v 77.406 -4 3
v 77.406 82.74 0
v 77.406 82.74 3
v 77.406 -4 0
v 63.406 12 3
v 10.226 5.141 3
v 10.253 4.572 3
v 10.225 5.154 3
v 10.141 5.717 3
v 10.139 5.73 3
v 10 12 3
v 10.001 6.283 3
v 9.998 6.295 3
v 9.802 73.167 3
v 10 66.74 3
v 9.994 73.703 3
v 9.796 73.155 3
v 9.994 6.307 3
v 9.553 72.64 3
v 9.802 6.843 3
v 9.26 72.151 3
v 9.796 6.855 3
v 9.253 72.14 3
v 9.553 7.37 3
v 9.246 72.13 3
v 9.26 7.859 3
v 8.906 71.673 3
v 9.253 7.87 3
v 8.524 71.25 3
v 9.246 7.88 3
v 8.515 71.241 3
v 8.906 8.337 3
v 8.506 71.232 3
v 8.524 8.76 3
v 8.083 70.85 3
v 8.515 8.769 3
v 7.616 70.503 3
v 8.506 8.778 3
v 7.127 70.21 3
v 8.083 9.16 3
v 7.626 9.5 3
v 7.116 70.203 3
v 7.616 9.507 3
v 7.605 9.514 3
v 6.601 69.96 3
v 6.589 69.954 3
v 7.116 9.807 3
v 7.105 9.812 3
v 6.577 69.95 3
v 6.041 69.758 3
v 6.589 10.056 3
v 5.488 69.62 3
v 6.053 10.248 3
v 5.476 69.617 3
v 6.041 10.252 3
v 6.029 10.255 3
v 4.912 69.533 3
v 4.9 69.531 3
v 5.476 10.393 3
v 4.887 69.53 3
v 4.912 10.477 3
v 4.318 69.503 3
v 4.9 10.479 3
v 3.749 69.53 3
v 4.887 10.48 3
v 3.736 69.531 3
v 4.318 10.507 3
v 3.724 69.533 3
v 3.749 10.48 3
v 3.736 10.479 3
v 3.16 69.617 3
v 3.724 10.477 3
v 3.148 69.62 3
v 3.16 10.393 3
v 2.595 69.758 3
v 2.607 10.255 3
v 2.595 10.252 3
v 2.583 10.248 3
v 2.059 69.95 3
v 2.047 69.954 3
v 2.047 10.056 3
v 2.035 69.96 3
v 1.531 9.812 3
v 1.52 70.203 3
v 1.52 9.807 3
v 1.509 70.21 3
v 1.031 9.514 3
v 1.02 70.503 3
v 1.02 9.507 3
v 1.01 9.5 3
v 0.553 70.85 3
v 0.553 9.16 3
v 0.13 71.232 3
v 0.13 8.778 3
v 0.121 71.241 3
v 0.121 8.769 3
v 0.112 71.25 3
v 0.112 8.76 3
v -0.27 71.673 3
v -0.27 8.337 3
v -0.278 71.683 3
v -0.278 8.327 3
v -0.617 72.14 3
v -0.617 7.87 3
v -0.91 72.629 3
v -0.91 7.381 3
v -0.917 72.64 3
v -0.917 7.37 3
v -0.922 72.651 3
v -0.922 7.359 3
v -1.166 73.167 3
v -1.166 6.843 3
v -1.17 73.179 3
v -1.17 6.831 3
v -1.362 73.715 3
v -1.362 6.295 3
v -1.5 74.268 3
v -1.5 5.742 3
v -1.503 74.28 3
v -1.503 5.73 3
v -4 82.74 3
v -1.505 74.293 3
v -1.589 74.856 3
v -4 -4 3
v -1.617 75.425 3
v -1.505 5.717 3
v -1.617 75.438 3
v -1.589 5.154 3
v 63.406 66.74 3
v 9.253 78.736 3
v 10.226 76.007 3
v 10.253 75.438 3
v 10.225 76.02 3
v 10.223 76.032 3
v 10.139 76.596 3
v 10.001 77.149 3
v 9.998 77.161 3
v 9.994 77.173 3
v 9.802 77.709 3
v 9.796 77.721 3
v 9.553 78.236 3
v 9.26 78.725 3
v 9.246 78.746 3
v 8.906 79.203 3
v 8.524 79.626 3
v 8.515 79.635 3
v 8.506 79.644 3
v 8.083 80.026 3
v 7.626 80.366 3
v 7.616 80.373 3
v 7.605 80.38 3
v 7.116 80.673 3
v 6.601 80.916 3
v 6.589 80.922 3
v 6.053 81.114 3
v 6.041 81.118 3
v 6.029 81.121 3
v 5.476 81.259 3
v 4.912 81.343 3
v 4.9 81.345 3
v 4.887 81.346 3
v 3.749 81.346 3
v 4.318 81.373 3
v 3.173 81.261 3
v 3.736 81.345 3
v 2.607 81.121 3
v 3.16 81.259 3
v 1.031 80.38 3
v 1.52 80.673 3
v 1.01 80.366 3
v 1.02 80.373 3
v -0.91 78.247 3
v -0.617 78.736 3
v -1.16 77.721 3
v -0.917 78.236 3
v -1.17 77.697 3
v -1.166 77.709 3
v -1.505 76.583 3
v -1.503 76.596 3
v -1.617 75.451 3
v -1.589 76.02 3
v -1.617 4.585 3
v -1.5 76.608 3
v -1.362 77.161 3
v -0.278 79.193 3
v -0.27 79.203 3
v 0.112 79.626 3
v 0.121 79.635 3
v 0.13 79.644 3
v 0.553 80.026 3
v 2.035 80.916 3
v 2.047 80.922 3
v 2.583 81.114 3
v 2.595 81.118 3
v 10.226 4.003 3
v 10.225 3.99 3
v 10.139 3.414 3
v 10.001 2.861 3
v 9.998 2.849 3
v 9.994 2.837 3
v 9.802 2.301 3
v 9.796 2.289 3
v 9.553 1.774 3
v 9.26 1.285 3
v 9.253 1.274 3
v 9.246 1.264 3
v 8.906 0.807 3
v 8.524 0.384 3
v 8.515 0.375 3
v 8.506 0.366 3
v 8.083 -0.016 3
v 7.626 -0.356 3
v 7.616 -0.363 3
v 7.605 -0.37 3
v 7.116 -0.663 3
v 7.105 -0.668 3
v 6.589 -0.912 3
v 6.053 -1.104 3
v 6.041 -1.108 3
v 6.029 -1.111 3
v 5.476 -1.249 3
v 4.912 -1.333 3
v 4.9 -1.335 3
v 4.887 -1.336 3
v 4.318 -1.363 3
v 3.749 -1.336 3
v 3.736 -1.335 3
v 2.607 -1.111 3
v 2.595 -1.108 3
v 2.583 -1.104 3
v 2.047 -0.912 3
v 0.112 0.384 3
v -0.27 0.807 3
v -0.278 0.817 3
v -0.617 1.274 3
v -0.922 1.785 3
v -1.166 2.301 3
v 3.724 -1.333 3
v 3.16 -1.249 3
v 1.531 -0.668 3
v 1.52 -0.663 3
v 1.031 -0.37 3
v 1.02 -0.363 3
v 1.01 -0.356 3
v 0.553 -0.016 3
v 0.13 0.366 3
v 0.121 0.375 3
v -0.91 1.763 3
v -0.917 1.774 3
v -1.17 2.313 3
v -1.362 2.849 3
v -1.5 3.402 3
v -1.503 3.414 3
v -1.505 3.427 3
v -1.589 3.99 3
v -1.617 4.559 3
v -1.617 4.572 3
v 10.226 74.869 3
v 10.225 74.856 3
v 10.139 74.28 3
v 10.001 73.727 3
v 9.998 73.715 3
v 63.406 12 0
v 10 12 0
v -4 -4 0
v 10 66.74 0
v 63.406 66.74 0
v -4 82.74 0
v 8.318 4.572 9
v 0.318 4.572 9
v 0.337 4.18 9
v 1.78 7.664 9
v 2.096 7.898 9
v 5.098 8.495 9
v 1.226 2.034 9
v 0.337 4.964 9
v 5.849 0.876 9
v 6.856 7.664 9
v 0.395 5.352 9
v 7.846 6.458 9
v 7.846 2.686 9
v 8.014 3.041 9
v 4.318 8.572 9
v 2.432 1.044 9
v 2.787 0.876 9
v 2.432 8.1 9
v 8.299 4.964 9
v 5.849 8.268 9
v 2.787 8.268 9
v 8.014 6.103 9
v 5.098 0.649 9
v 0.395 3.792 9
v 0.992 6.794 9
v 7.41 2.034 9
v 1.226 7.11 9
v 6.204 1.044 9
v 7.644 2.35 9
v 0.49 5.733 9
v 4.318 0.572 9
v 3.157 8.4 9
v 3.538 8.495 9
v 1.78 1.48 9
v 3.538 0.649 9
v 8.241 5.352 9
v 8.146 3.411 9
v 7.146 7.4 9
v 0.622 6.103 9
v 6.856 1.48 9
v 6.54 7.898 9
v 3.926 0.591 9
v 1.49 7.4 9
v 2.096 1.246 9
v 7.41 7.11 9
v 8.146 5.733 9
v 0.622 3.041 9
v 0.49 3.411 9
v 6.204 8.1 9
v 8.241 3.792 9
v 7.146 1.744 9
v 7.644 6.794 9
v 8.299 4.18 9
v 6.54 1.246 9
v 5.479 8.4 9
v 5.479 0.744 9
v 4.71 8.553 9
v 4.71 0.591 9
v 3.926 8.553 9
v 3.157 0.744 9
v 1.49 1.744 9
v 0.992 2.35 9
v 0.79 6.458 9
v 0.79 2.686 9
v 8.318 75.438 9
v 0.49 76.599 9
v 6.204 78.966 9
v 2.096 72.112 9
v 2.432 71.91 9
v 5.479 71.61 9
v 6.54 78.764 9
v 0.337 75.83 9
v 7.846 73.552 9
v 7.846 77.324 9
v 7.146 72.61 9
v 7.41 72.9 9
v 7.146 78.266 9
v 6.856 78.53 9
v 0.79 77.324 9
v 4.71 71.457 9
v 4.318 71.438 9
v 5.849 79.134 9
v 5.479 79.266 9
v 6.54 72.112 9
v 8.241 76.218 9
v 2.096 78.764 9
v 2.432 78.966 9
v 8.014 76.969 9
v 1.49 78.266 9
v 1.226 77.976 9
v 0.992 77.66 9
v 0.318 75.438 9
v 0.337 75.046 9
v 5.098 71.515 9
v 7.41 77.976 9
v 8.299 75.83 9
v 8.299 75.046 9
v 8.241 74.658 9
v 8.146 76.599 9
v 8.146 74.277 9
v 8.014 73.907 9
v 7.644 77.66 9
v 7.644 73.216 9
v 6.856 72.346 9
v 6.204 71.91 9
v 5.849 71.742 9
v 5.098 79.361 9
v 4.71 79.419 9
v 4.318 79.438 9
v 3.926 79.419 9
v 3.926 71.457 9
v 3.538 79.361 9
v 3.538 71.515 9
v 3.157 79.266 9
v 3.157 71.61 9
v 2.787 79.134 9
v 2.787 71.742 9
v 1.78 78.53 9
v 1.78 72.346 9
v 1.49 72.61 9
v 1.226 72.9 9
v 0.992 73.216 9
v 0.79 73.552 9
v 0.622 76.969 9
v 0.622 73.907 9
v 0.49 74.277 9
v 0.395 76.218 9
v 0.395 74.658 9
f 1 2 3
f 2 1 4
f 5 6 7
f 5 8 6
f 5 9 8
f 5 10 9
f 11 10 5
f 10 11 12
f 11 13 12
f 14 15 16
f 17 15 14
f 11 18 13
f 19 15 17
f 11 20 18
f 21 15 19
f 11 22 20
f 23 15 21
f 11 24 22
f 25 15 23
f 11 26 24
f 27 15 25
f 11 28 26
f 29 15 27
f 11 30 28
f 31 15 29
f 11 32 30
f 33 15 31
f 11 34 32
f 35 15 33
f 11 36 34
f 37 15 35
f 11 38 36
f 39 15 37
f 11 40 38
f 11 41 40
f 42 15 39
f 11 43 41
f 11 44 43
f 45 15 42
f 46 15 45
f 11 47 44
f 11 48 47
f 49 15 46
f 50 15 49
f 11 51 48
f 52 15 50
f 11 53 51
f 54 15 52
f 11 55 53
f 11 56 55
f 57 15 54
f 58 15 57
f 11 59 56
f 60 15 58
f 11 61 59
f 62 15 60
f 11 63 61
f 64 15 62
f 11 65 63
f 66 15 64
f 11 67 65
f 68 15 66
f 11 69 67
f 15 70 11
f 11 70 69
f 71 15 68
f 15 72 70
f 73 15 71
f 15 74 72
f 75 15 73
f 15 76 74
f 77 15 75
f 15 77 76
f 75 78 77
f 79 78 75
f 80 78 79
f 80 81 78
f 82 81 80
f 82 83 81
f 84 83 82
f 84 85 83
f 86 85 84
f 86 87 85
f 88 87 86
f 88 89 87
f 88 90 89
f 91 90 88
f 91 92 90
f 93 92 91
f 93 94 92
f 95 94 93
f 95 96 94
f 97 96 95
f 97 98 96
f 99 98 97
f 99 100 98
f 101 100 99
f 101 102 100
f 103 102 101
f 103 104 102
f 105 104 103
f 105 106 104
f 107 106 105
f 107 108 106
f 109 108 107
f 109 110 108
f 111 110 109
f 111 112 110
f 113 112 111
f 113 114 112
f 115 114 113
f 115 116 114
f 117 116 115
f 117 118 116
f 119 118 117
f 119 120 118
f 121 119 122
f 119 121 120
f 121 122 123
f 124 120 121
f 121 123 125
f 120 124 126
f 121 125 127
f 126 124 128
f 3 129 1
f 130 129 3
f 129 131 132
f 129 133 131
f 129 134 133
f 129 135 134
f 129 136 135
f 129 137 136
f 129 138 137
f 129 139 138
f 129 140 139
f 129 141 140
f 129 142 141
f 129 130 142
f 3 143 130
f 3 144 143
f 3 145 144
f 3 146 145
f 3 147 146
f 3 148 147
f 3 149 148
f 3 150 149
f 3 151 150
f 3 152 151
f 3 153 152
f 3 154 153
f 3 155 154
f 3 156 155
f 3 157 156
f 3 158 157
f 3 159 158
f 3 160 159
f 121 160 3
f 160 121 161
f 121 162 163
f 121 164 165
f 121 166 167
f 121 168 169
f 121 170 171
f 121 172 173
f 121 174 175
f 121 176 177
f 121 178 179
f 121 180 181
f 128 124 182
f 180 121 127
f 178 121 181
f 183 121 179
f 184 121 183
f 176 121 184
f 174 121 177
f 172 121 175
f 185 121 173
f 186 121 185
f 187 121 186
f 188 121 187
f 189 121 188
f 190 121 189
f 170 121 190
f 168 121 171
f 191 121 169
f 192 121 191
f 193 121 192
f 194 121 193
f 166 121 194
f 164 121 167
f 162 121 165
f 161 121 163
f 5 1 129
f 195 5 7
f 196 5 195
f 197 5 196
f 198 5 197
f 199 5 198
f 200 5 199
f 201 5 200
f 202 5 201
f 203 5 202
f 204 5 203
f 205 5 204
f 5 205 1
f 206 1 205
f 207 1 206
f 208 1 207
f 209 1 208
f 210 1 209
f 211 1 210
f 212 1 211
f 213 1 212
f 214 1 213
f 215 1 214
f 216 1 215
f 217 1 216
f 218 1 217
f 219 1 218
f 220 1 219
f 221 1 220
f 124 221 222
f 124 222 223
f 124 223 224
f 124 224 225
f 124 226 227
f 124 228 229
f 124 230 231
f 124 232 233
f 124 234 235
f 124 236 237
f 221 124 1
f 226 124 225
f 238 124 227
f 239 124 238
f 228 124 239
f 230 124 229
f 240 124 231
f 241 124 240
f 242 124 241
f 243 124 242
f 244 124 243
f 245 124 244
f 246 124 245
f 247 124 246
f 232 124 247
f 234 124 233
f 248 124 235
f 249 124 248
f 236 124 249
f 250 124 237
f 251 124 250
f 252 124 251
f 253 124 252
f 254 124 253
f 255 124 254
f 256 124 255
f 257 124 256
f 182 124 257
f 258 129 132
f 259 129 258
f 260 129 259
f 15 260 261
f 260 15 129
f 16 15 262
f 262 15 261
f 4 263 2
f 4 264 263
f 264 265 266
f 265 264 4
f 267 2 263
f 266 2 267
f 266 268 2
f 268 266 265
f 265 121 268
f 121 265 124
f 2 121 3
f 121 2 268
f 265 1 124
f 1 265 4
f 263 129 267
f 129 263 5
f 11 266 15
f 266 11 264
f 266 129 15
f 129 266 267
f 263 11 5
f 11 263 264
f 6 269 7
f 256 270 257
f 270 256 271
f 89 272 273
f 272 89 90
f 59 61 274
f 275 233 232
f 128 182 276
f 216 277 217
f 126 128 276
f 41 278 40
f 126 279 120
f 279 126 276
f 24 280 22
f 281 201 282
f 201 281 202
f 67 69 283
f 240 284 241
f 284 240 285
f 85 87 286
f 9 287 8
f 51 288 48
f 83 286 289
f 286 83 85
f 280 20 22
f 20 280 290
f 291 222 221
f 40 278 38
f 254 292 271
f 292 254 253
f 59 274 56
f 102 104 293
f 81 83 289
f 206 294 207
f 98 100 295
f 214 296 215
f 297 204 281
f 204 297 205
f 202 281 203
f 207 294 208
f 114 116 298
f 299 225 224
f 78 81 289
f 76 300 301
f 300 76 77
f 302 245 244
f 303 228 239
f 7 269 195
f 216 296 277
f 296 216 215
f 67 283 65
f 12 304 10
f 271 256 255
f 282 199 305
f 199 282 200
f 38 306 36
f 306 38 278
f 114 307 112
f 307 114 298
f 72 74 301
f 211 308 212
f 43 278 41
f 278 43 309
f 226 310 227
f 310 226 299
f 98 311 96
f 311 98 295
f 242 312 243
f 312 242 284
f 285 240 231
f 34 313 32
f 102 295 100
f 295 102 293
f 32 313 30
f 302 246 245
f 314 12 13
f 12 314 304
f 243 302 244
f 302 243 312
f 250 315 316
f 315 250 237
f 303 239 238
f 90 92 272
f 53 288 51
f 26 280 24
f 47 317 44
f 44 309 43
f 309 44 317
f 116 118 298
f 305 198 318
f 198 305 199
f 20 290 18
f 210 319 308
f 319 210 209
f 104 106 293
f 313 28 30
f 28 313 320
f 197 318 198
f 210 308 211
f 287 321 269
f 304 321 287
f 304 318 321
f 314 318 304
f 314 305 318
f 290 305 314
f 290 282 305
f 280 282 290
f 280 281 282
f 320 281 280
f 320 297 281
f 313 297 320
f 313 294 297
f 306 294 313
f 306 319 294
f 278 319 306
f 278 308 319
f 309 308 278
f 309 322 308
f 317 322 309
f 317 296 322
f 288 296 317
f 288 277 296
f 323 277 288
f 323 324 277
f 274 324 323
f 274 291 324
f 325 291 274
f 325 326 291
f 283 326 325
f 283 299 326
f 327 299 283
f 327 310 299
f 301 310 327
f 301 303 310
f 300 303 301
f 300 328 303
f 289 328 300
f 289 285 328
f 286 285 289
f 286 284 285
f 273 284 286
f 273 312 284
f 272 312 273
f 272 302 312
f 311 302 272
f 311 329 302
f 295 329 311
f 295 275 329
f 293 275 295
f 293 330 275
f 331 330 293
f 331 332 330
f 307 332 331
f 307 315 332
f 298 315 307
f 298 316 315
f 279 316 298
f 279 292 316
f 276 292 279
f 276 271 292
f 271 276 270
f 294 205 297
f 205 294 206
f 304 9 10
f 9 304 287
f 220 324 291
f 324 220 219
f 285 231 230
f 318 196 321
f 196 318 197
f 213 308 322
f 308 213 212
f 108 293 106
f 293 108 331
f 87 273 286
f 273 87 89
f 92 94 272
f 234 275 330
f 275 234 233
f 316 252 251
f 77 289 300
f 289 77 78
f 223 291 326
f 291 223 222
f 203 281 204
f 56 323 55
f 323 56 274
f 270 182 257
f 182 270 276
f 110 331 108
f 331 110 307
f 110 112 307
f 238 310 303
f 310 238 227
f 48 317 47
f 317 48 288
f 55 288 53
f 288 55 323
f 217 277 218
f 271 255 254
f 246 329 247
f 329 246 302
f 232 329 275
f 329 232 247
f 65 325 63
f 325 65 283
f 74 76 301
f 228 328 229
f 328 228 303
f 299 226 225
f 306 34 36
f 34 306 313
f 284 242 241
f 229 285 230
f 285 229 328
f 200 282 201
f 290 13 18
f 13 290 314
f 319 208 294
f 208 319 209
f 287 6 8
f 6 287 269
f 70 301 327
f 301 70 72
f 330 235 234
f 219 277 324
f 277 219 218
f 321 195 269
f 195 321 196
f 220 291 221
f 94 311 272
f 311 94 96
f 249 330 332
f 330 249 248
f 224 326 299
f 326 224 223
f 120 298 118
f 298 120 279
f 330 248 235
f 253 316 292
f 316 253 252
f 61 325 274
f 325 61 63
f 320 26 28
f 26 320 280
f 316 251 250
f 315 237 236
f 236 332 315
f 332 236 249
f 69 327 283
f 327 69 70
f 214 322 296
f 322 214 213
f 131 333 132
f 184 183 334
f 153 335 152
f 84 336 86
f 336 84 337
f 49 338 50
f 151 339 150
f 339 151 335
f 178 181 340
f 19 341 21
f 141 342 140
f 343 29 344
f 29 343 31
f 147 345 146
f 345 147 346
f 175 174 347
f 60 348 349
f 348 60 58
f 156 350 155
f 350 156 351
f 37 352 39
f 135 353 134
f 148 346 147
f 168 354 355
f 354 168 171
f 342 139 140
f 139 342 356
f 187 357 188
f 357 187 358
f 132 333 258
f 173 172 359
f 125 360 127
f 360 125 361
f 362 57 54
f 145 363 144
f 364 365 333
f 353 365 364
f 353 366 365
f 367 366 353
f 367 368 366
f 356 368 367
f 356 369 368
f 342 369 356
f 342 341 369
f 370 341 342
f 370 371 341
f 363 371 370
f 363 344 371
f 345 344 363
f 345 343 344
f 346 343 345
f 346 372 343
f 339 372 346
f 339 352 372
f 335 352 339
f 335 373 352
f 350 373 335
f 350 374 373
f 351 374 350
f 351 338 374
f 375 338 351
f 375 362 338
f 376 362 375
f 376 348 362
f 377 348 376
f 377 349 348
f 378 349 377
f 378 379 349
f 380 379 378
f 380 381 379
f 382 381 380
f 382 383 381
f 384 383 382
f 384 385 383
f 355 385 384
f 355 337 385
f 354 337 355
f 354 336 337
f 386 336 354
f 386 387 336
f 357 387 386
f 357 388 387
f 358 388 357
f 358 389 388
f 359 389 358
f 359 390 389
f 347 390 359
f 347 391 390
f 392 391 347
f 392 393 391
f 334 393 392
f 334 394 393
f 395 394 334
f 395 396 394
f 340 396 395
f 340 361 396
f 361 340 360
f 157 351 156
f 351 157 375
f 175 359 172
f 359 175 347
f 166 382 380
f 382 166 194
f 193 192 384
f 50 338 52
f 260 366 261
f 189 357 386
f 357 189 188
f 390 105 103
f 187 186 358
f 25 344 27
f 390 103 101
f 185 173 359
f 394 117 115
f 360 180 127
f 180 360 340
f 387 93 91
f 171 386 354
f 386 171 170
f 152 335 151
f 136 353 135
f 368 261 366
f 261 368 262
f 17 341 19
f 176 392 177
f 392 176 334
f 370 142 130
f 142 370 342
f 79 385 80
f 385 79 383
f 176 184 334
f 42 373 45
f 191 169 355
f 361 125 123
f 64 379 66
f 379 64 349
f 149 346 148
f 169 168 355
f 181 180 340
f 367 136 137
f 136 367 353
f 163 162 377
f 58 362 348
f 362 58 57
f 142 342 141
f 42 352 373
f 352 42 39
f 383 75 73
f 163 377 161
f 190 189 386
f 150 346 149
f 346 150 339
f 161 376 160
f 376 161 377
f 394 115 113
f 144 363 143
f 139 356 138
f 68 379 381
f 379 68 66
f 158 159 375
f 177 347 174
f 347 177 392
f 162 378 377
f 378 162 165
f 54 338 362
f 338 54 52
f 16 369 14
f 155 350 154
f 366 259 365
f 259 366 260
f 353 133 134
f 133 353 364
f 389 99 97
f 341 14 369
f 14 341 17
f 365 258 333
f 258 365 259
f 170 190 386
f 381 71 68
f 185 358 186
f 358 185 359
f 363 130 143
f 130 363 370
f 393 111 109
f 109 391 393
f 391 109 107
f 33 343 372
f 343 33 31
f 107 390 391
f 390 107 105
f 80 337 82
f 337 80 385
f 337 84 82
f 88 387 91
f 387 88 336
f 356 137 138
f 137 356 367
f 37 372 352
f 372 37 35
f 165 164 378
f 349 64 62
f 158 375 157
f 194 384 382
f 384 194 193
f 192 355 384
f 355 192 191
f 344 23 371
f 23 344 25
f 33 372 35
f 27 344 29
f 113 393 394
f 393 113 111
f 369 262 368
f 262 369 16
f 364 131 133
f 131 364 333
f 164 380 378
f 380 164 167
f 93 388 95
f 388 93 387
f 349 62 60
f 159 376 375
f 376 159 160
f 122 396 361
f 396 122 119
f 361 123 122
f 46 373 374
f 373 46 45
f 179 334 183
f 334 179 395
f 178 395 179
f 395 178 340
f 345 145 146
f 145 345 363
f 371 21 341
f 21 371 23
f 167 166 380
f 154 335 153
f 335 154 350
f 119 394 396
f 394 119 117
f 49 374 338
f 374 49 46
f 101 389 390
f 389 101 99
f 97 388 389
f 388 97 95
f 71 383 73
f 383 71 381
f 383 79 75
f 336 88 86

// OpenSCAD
// Units: mm. PCB stand worked example.
union() {
  difference() {
    translate([-4, -4, 0])
      cube([81.406, 86.740, 3]);
    translate([10, 12, -0.1])
      cube([53.406, 54.740, 3.2]);
  }
  translate([4.318, 4.572, 2.8])
    cylinder(h=6.2, d1=12, d2=8, $fn=64);
  translate([4.318, 75.438, 2.8])
    cylinder(h=6.2, d1=12, d2=8, $fn=64);
}
